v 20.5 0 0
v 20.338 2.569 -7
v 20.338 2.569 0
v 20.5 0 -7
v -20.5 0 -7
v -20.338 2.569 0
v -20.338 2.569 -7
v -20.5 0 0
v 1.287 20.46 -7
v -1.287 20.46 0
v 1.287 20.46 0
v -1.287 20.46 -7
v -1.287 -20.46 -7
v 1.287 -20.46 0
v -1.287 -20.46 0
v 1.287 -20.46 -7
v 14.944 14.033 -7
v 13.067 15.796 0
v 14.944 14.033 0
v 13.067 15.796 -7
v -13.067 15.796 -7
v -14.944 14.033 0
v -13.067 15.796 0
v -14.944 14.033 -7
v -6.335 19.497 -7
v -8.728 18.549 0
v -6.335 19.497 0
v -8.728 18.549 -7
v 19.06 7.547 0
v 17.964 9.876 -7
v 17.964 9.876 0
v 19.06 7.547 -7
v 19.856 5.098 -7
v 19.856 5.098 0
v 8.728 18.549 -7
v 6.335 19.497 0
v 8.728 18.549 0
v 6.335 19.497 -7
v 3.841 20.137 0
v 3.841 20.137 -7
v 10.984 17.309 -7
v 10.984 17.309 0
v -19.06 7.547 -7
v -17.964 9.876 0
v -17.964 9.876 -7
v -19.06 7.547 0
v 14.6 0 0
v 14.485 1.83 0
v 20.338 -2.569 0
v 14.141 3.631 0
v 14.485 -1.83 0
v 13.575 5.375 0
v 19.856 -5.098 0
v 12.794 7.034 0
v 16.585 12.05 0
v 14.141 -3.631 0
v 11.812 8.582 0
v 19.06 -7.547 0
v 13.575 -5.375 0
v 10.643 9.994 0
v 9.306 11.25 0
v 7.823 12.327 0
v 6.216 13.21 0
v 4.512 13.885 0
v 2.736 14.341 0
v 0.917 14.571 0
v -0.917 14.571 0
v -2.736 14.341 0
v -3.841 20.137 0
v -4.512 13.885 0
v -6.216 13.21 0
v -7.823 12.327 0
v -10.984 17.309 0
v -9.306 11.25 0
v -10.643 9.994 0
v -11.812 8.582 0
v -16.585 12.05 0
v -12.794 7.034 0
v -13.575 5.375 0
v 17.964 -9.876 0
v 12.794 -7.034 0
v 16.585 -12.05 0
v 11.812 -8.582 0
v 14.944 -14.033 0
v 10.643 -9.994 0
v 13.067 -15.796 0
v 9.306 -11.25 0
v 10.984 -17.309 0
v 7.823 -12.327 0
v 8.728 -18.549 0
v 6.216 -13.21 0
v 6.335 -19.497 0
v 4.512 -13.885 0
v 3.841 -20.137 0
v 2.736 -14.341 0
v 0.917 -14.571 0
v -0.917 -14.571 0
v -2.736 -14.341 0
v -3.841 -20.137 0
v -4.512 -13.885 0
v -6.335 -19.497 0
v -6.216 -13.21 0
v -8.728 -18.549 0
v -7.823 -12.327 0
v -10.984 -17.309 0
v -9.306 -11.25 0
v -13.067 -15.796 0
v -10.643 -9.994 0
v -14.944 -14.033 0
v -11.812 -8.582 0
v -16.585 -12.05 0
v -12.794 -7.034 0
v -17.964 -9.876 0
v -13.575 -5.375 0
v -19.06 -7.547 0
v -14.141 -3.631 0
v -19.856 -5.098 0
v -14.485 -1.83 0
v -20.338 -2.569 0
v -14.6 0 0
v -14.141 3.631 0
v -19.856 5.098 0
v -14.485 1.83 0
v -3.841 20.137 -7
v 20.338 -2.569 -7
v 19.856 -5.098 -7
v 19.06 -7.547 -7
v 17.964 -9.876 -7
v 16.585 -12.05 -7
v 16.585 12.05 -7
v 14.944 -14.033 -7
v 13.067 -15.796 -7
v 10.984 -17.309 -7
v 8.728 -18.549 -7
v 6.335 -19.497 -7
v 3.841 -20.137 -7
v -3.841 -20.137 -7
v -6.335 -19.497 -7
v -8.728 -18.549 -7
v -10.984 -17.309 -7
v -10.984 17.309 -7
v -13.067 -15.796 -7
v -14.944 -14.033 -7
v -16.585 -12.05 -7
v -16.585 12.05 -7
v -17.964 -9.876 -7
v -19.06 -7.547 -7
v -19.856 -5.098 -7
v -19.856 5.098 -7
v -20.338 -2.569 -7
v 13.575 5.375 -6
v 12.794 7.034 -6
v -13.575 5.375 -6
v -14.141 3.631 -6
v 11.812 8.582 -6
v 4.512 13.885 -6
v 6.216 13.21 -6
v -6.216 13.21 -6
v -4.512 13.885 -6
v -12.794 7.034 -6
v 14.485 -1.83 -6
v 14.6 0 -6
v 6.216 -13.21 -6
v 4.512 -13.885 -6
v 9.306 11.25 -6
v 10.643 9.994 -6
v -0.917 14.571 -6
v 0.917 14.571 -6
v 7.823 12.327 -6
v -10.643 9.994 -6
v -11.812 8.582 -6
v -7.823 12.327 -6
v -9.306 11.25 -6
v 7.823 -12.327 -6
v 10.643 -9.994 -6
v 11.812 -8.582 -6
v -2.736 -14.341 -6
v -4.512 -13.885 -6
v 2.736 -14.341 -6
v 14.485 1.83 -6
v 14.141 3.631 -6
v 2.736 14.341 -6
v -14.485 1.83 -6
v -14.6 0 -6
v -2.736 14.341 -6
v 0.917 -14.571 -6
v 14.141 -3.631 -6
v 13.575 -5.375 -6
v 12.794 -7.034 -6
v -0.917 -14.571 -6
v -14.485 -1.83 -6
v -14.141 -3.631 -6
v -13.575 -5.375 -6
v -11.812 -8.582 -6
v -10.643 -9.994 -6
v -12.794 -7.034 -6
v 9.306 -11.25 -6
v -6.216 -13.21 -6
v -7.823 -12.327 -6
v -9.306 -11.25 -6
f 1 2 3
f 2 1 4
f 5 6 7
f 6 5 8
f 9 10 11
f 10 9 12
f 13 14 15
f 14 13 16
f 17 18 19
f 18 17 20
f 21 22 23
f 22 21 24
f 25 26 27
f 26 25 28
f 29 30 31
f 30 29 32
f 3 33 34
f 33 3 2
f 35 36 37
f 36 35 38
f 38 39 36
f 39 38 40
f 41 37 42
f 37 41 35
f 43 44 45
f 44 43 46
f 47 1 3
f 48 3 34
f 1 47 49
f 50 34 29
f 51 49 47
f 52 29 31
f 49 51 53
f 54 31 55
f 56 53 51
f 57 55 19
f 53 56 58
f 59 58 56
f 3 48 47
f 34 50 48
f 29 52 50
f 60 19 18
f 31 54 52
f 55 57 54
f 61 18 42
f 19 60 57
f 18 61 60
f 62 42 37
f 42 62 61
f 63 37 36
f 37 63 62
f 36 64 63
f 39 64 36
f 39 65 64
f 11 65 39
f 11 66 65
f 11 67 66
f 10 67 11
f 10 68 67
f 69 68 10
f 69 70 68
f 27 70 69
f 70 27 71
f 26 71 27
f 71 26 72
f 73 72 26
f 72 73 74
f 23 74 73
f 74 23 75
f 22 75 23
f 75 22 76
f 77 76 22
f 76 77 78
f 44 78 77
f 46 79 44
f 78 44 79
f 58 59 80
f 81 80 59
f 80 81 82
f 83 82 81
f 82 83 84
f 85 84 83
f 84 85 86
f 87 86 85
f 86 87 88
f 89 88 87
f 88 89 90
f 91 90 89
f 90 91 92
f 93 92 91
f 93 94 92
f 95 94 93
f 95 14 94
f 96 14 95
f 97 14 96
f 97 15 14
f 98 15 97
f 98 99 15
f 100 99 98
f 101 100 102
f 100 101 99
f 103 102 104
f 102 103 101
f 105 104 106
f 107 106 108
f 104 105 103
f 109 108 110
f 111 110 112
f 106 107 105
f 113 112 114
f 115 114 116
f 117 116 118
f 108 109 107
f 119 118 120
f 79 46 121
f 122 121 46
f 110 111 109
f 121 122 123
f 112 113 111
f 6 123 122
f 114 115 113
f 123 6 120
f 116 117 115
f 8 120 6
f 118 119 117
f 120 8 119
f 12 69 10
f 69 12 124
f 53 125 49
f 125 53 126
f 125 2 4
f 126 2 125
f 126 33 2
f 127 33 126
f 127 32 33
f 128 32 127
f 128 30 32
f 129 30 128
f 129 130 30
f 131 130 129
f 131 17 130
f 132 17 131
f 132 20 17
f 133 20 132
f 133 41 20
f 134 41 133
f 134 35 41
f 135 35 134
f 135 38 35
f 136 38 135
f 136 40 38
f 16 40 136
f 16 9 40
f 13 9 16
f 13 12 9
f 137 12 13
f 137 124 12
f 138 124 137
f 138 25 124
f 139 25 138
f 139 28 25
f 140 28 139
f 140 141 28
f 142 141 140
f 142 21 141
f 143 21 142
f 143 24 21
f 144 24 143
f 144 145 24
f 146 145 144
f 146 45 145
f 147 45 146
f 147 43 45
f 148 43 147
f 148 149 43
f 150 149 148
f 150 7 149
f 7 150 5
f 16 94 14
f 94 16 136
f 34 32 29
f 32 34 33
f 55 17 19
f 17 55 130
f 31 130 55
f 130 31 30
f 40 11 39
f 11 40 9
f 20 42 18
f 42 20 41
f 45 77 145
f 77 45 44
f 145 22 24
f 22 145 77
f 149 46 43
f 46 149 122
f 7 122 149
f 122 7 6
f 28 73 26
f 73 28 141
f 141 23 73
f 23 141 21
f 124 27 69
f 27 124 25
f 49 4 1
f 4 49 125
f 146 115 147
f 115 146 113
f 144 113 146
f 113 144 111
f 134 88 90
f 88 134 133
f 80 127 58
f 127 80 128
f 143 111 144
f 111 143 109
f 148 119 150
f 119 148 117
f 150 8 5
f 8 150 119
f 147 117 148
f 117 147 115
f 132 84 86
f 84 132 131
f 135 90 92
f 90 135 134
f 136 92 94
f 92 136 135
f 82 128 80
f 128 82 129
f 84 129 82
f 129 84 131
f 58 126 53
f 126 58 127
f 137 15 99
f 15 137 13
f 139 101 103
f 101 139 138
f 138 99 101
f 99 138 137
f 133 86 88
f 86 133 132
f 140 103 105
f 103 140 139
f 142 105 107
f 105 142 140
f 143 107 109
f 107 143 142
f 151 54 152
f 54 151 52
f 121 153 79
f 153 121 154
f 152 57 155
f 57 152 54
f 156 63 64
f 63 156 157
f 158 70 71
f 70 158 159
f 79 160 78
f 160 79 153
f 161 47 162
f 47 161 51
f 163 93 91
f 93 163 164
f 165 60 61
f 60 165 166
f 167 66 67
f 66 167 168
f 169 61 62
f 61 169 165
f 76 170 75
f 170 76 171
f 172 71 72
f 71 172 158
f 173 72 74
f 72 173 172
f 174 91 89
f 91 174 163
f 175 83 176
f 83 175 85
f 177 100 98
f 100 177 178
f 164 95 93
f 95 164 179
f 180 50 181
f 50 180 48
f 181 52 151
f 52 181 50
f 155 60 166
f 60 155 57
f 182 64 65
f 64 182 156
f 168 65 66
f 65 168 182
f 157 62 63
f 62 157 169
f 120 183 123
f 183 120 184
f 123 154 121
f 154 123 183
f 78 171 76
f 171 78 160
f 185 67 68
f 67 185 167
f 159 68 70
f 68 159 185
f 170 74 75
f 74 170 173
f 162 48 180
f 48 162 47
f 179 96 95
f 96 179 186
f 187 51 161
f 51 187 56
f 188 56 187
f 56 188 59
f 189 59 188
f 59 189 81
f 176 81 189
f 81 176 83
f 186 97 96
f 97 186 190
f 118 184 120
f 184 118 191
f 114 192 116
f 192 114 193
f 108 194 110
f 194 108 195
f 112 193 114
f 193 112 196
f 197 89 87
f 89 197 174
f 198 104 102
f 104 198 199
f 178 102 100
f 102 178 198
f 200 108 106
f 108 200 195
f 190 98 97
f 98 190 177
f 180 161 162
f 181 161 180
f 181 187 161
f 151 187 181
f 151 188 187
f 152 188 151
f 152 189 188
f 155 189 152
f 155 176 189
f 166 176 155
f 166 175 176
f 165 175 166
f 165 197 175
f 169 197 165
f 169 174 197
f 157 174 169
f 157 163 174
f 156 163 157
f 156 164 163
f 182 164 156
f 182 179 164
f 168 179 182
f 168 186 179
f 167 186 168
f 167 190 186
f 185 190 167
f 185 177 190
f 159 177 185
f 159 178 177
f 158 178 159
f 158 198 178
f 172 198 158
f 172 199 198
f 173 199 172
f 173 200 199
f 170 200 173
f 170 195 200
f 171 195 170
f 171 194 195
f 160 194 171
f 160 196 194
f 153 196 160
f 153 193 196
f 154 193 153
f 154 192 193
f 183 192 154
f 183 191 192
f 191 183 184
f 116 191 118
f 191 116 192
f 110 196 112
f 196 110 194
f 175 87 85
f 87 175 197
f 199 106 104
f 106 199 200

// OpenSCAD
$fn = 50;


difference() {
	union() {
		translate(v = [0, 0, -7.0000000000]) {
			cylinder(h = 7, r = 20.5000000000);
		}
	}
	union() {
		#translate(v = [0, 0, -6.0000000000]) {
			cylinder(h = 6, r = 14.6000000000);
		}
	}
}
